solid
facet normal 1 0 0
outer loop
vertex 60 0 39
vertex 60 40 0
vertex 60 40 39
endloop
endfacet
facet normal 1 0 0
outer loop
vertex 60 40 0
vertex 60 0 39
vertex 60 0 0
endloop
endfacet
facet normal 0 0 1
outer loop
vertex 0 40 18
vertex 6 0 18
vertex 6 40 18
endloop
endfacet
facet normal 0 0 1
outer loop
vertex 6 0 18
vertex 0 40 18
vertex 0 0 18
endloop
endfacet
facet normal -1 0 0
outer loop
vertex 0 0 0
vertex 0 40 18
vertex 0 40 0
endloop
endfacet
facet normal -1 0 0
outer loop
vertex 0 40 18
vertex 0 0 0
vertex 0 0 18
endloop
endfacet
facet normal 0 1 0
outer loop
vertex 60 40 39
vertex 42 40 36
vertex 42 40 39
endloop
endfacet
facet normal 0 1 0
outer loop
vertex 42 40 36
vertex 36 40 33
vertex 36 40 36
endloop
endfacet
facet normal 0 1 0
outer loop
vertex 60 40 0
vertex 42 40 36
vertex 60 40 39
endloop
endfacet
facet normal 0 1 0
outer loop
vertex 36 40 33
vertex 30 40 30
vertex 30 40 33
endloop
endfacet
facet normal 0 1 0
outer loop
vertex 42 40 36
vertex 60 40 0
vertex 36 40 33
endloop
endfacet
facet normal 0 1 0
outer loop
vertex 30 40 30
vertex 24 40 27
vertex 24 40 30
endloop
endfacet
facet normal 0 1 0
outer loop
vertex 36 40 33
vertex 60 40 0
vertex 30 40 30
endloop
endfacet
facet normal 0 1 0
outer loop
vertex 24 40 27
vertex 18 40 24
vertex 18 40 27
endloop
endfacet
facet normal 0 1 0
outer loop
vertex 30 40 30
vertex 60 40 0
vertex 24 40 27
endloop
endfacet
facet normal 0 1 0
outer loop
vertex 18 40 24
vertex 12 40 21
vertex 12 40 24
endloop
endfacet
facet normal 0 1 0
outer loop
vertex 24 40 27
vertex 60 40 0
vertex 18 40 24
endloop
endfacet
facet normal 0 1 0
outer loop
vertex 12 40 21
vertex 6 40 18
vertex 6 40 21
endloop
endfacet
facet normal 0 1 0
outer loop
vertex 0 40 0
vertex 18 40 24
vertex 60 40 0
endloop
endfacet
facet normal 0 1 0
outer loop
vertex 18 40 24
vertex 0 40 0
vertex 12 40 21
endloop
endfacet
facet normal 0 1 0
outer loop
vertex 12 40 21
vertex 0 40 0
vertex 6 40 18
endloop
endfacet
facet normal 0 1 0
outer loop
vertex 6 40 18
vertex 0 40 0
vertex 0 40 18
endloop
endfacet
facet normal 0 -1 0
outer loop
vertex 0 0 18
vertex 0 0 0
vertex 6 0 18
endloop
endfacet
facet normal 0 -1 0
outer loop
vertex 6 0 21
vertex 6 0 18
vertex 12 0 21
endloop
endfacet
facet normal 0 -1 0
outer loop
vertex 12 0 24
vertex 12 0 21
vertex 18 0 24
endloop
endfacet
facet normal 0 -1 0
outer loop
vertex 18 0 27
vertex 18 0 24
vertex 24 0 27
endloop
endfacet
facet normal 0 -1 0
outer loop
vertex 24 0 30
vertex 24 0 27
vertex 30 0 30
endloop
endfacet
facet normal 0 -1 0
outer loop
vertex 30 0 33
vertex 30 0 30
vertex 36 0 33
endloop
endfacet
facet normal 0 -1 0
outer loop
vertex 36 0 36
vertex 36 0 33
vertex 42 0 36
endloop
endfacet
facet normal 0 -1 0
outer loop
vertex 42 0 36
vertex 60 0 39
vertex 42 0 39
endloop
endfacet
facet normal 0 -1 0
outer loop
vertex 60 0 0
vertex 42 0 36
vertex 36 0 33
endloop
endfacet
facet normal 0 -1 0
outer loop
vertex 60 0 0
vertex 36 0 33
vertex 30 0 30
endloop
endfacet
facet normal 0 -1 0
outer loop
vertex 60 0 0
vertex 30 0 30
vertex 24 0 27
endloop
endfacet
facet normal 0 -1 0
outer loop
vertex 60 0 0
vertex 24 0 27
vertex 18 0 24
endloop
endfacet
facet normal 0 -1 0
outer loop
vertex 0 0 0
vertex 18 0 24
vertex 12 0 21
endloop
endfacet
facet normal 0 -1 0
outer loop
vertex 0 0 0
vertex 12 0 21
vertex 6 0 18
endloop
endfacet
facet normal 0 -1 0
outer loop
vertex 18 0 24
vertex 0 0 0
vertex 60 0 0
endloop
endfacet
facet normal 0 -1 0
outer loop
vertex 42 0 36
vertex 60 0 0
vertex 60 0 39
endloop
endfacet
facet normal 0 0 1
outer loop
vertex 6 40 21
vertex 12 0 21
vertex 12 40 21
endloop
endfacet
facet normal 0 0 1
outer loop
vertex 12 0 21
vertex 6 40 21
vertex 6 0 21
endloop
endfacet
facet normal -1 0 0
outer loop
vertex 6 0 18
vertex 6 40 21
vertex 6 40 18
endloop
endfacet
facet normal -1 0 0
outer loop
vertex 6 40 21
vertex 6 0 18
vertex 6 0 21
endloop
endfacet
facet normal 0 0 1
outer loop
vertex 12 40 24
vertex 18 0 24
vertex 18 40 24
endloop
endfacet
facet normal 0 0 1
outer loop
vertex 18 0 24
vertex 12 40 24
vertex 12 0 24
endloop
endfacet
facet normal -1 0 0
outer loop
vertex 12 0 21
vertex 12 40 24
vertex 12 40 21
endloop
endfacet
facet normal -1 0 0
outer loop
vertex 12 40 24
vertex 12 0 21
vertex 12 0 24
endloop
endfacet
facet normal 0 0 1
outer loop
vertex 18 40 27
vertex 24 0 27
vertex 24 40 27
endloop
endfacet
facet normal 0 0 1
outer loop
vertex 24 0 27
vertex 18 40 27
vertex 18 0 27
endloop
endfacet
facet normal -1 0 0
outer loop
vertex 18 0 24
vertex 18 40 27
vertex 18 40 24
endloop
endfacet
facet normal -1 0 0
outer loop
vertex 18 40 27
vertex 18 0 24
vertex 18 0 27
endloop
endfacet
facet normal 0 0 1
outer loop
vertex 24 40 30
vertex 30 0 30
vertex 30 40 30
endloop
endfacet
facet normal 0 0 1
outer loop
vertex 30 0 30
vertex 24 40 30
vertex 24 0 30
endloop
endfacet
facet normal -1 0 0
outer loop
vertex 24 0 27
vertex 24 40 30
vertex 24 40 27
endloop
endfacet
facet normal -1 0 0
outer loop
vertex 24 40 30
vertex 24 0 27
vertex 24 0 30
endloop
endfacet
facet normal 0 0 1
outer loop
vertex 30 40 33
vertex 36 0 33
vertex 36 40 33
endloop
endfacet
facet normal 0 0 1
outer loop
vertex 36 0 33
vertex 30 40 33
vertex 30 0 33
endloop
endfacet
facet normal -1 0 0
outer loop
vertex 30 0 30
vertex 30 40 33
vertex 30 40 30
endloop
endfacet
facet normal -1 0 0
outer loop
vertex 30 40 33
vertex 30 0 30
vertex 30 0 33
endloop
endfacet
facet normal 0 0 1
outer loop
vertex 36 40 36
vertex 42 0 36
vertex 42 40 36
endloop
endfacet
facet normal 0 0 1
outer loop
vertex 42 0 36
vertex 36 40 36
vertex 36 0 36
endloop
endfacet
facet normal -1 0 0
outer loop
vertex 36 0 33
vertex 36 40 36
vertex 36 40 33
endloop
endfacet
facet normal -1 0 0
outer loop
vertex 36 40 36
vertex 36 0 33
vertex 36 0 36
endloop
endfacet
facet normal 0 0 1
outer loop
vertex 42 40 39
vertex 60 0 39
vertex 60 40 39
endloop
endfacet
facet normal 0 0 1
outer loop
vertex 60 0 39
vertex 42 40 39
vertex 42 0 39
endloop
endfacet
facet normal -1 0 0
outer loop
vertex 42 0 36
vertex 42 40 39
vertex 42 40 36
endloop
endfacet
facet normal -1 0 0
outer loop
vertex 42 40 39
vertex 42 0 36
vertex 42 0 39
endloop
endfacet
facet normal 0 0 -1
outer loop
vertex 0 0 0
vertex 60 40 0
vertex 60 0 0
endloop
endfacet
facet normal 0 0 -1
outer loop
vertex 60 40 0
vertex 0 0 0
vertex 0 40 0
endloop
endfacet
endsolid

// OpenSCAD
// Parameters for the stepped block
base_length = 60;  // Adjusted length of the rectangular base
base_width = 40;   // Adjusted width of the rectangular base
base_height = 15;  // Adjusted height of the base
step_count = 8;    // Increased number of steps
step_height = 3;   // Reduced height of each step
step_depth = 6;    // Reduced depth of each step

module stepped_block() {
    // Base of the block
    cube([base_length, base_width, base_height]);

    // Steps
    for (i = [0:step_count-1]) {
        translate([i * step_depth, 0, base_height + i * step_height])
            cube([base_length - i * step_depth, base_width, step_height]);
    }
}

// Render the stepped block
stepped_block();
